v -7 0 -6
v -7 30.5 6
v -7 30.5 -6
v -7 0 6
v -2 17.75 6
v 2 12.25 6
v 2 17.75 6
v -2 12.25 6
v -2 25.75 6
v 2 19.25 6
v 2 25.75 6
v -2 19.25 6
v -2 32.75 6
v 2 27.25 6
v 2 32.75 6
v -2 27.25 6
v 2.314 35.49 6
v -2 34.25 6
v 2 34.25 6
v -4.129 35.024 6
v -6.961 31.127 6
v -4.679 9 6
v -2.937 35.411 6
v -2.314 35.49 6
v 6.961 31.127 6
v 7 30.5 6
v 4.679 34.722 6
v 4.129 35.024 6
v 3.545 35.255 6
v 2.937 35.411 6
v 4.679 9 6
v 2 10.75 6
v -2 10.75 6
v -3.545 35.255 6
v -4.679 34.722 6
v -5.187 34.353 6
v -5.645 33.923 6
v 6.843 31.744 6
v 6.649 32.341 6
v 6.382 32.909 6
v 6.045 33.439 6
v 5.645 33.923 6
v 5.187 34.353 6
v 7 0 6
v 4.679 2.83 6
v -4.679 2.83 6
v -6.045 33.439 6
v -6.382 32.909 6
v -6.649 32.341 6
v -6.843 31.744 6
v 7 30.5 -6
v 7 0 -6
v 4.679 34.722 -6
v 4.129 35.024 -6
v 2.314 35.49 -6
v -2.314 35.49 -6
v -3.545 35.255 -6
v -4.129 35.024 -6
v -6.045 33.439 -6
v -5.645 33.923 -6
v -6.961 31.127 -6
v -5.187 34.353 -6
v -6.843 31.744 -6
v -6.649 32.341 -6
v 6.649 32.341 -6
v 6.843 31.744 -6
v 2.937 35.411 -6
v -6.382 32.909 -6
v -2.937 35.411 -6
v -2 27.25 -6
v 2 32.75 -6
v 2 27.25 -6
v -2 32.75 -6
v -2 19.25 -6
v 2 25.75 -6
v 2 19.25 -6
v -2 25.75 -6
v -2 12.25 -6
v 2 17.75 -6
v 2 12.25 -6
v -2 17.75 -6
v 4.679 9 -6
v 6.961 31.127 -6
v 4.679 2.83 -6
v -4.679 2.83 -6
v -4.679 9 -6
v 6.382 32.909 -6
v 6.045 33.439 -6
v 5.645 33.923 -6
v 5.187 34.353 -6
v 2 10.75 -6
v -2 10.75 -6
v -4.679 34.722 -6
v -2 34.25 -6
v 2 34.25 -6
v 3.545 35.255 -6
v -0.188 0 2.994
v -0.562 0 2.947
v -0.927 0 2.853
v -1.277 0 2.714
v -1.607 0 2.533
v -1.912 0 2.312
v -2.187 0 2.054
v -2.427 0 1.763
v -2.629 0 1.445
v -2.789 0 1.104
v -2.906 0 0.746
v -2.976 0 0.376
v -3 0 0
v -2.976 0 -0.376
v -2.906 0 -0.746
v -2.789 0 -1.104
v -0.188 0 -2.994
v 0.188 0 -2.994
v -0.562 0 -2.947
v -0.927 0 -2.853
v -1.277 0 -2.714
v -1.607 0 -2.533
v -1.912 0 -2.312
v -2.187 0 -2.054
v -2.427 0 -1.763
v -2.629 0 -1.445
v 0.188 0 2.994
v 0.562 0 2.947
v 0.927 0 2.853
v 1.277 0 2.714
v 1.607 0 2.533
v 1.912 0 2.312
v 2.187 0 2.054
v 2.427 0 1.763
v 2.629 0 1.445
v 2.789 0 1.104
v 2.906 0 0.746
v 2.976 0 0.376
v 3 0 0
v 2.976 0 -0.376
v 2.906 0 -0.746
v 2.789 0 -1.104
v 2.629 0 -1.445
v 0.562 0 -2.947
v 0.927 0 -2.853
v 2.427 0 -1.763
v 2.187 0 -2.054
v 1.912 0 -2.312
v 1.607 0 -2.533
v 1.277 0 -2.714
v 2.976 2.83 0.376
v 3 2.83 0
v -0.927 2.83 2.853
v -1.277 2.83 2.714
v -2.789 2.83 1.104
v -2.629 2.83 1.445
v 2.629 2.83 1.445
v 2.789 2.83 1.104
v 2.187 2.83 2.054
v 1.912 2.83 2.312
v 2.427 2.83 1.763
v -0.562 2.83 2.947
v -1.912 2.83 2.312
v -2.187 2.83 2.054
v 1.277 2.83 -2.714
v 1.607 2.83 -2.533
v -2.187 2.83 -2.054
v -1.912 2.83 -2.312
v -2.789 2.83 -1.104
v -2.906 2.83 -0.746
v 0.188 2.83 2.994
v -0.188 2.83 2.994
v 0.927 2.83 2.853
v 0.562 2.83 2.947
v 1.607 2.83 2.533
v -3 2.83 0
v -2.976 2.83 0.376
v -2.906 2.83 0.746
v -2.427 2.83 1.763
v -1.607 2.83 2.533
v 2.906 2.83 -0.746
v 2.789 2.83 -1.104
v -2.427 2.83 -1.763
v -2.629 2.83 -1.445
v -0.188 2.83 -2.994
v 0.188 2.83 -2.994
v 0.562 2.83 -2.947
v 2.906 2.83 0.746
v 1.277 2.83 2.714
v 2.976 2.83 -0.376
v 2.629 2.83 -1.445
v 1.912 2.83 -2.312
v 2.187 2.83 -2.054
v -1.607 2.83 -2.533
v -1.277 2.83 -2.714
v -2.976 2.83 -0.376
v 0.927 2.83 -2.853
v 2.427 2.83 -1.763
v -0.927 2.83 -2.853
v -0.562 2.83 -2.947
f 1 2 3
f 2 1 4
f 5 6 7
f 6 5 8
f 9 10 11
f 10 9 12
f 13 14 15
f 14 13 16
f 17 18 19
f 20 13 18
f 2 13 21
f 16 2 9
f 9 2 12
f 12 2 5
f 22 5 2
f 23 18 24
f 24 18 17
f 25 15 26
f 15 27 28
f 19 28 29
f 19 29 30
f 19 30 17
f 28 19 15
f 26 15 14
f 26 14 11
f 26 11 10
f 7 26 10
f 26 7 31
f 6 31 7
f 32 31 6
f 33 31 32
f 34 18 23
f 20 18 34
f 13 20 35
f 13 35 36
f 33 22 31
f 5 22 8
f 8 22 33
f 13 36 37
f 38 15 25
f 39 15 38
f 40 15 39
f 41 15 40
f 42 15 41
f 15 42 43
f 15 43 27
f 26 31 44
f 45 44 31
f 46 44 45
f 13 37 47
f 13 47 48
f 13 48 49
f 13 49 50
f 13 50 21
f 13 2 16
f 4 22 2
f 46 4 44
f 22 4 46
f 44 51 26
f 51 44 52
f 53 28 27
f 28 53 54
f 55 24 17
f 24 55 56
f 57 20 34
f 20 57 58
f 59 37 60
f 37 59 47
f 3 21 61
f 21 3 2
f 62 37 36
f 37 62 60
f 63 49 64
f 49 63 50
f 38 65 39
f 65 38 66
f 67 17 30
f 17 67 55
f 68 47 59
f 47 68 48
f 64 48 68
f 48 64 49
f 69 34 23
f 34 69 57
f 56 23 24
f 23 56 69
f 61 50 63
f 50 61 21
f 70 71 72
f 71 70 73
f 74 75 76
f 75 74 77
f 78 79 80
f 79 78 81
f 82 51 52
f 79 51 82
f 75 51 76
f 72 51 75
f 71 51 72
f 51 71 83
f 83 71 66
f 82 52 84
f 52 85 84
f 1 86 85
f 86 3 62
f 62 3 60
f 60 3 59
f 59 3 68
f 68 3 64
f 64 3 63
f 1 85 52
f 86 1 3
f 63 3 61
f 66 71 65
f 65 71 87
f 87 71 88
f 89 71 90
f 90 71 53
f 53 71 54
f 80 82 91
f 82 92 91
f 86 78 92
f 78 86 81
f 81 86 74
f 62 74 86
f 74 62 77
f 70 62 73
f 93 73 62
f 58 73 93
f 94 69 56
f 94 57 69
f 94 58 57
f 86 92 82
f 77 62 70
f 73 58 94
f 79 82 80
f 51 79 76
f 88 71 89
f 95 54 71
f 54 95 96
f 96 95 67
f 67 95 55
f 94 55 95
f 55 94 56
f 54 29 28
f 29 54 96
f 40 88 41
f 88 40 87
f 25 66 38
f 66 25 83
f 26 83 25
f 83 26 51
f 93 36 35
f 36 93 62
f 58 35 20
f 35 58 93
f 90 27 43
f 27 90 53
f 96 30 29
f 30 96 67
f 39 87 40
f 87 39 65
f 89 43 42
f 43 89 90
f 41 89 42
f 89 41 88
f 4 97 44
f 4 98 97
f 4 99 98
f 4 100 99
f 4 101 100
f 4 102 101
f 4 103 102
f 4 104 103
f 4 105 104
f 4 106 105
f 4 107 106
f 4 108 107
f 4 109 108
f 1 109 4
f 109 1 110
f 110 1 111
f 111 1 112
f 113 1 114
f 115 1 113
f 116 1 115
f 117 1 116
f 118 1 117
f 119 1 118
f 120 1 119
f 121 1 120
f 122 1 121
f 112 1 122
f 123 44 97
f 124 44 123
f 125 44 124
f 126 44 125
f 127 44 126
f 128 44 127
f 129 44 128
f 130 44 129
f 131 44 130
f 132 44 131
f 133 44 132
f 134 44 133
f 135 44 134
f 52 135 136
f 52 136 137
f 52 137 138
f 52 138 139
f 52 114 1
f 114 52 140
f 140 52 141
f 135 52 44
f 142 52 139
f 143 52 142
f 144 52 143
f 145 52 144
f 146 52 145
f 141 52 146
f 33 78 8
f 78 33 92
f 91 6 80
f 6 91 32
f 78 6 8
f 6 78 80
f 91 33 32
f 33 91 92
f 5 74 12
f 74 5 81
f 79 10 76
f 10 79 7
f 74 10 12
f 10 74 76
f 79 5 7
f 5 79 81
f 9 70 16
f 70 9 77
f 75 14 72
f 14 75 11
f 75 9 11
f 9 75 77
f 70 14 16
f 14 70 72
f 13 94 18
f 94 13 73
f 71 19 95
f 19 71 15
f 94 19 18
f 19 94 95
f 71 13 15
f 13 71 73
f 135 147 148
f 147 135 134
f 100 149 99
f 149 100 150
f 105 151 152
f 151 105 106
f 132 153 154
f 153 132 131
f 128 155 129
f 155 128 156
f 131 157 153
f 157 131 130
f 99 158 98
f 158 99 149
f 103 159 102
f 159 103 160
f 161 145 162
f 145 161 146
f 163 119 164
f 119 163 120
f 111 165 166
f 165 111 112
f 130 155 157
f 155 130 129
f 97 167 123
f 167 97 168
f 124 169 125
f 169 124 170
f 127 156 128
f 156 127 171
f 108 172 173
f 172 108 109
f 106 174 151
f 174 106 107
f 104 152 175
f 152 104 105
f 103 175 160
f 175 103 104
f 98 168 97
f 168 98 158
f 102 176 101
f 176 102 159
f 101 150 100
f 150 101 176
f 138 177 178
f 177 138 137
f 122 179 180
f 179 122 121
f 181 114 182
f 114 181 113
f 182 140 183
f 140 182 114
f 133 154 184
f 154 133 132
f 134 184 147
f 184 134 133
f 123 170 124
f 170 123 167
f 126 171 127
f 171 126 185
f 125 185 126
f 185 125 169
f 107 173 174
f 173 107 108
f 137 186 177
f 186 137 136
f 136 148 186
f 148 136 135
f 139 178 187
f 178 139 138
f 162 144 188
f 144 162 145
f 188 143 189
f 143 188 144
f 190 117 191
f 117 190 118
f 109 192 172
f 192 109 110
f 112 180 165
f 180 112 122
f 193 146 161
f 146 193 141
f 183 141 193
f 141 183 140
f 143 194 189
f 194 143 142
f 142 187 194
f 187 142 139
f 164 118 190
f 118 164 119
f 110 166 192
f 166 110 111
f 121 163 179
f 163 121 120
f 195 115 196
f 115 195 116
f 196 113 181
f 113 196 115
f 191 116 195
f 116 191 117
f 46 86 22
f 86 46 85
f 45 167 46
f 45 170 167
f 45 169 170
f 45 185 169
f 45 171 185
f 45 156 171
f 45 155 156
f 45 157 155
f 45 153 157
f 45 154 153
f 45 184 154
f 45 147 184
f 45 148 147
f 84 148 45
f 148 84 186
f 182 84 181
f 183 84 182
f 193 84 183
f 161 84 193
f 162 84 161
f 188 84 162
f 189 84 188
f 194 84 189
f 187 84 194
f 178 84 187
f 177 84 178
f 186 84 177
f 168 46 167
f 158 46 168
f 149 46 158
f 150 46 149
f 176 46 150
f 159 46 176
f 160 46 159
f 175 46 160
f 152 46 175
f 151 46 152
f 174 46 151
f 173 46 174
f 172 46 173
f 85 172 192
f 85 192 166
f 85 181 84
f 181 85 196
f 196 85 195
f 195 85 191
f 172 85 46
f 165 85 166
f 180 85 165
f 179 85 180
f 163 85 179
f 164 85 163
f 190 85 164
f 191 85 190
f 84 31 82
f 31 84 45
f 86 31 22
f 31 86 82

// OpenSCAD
$fn = 50;


difference() {
	union() {
		translate(v = [0, 21.0000000000, -6.0000000000]) {
			rotate(a = [0, 0, 0]) {
				hull() {
					translate(v = [-2.0000000000, 9.5000000000, 0]) {
						rotate(a = [0, 0, 0]) {
							translate(v = [0, 0, 0]) {
								rotate(a = [0, 0, 0]) {
									cylinder(h = 12, r = 5);
								}
							}
						}
					}
					translate(v = [2.0000000000, 9.5000000000, 0]) {
						rotate(a = [0, 0, 0]) {
							translate(v = [0, 0, 0]) {
								rotate(a = [0, 0, 0]) {
									cylinder(h = 12, r = 5);
								}
							}
						}
					}
					translate(v = [-2.0000000000, -9.5000000000, 0]) {
						rotate(a = [0, 0, 0]) {
							translate(v = [0, 0, 0]) {
								rotate(a = [0, 0, 0]) {
									cylinder(h = 12, r = 5);
								}
							}
						}
					}
					translate(v = [2.0000000000, -9.5000000000, 0]) {
						rotate(a = [0, 0, 0]) {
							translate(v = [0, 0, 0]) {
								rotate(a = [0, 0, 0]) {
									cylinder(h = 12, r = 5);
								}
							}
						}
					}
				}
			}
		}
		translate(v = [-7.0000000000, 0, -6.0000000000]) {
			rotate(a = [0, 0, 0]) {
				cube(size = [14, 13.5000000000, 12]);
			}
		}
	}
	union() {
		translate(v = [-2.0000000000, 10.7500000000, -50]) {
			rotate(a = [0, 0, 0]) {
				cube(size = [4, 1.5000000000, 100]);
			}
		}
		translate(v = [-2.0000000000, 17.7500000000, -50]) {
			rotate(a = [0, 0, 0]) {
				cube(size = [4, 1.5000000000, 100]);
			}
		}
		translate(v = [-2.0000000000, 25.7500000000, -50]) {
			rotate(a = [0, 0, 0]) {
				cube(size = [4, 1.5000000000, 100]);
			}
		}
		translate(v = [-2.0000000000, 32.7500000000, -50]) {
			rotate(a = [0, 0, 0]) {
				cube(size = [4, 1.5000000000, 100]);
			}
		}
		translate(v = [0.0000000000, 8, 0]) {
			rotate(a = [90, 0, 0]) {
				cylinder(h = 8, r = 3.0000000000);
			}
		}
		translate(v = [-4.6793760832, 9, -25]) {
			rotate(a = [90, 0, 0]) {
				cube(size = [9.3587521664, 100, 6.1700000000]);
			}
		}
	}
}
